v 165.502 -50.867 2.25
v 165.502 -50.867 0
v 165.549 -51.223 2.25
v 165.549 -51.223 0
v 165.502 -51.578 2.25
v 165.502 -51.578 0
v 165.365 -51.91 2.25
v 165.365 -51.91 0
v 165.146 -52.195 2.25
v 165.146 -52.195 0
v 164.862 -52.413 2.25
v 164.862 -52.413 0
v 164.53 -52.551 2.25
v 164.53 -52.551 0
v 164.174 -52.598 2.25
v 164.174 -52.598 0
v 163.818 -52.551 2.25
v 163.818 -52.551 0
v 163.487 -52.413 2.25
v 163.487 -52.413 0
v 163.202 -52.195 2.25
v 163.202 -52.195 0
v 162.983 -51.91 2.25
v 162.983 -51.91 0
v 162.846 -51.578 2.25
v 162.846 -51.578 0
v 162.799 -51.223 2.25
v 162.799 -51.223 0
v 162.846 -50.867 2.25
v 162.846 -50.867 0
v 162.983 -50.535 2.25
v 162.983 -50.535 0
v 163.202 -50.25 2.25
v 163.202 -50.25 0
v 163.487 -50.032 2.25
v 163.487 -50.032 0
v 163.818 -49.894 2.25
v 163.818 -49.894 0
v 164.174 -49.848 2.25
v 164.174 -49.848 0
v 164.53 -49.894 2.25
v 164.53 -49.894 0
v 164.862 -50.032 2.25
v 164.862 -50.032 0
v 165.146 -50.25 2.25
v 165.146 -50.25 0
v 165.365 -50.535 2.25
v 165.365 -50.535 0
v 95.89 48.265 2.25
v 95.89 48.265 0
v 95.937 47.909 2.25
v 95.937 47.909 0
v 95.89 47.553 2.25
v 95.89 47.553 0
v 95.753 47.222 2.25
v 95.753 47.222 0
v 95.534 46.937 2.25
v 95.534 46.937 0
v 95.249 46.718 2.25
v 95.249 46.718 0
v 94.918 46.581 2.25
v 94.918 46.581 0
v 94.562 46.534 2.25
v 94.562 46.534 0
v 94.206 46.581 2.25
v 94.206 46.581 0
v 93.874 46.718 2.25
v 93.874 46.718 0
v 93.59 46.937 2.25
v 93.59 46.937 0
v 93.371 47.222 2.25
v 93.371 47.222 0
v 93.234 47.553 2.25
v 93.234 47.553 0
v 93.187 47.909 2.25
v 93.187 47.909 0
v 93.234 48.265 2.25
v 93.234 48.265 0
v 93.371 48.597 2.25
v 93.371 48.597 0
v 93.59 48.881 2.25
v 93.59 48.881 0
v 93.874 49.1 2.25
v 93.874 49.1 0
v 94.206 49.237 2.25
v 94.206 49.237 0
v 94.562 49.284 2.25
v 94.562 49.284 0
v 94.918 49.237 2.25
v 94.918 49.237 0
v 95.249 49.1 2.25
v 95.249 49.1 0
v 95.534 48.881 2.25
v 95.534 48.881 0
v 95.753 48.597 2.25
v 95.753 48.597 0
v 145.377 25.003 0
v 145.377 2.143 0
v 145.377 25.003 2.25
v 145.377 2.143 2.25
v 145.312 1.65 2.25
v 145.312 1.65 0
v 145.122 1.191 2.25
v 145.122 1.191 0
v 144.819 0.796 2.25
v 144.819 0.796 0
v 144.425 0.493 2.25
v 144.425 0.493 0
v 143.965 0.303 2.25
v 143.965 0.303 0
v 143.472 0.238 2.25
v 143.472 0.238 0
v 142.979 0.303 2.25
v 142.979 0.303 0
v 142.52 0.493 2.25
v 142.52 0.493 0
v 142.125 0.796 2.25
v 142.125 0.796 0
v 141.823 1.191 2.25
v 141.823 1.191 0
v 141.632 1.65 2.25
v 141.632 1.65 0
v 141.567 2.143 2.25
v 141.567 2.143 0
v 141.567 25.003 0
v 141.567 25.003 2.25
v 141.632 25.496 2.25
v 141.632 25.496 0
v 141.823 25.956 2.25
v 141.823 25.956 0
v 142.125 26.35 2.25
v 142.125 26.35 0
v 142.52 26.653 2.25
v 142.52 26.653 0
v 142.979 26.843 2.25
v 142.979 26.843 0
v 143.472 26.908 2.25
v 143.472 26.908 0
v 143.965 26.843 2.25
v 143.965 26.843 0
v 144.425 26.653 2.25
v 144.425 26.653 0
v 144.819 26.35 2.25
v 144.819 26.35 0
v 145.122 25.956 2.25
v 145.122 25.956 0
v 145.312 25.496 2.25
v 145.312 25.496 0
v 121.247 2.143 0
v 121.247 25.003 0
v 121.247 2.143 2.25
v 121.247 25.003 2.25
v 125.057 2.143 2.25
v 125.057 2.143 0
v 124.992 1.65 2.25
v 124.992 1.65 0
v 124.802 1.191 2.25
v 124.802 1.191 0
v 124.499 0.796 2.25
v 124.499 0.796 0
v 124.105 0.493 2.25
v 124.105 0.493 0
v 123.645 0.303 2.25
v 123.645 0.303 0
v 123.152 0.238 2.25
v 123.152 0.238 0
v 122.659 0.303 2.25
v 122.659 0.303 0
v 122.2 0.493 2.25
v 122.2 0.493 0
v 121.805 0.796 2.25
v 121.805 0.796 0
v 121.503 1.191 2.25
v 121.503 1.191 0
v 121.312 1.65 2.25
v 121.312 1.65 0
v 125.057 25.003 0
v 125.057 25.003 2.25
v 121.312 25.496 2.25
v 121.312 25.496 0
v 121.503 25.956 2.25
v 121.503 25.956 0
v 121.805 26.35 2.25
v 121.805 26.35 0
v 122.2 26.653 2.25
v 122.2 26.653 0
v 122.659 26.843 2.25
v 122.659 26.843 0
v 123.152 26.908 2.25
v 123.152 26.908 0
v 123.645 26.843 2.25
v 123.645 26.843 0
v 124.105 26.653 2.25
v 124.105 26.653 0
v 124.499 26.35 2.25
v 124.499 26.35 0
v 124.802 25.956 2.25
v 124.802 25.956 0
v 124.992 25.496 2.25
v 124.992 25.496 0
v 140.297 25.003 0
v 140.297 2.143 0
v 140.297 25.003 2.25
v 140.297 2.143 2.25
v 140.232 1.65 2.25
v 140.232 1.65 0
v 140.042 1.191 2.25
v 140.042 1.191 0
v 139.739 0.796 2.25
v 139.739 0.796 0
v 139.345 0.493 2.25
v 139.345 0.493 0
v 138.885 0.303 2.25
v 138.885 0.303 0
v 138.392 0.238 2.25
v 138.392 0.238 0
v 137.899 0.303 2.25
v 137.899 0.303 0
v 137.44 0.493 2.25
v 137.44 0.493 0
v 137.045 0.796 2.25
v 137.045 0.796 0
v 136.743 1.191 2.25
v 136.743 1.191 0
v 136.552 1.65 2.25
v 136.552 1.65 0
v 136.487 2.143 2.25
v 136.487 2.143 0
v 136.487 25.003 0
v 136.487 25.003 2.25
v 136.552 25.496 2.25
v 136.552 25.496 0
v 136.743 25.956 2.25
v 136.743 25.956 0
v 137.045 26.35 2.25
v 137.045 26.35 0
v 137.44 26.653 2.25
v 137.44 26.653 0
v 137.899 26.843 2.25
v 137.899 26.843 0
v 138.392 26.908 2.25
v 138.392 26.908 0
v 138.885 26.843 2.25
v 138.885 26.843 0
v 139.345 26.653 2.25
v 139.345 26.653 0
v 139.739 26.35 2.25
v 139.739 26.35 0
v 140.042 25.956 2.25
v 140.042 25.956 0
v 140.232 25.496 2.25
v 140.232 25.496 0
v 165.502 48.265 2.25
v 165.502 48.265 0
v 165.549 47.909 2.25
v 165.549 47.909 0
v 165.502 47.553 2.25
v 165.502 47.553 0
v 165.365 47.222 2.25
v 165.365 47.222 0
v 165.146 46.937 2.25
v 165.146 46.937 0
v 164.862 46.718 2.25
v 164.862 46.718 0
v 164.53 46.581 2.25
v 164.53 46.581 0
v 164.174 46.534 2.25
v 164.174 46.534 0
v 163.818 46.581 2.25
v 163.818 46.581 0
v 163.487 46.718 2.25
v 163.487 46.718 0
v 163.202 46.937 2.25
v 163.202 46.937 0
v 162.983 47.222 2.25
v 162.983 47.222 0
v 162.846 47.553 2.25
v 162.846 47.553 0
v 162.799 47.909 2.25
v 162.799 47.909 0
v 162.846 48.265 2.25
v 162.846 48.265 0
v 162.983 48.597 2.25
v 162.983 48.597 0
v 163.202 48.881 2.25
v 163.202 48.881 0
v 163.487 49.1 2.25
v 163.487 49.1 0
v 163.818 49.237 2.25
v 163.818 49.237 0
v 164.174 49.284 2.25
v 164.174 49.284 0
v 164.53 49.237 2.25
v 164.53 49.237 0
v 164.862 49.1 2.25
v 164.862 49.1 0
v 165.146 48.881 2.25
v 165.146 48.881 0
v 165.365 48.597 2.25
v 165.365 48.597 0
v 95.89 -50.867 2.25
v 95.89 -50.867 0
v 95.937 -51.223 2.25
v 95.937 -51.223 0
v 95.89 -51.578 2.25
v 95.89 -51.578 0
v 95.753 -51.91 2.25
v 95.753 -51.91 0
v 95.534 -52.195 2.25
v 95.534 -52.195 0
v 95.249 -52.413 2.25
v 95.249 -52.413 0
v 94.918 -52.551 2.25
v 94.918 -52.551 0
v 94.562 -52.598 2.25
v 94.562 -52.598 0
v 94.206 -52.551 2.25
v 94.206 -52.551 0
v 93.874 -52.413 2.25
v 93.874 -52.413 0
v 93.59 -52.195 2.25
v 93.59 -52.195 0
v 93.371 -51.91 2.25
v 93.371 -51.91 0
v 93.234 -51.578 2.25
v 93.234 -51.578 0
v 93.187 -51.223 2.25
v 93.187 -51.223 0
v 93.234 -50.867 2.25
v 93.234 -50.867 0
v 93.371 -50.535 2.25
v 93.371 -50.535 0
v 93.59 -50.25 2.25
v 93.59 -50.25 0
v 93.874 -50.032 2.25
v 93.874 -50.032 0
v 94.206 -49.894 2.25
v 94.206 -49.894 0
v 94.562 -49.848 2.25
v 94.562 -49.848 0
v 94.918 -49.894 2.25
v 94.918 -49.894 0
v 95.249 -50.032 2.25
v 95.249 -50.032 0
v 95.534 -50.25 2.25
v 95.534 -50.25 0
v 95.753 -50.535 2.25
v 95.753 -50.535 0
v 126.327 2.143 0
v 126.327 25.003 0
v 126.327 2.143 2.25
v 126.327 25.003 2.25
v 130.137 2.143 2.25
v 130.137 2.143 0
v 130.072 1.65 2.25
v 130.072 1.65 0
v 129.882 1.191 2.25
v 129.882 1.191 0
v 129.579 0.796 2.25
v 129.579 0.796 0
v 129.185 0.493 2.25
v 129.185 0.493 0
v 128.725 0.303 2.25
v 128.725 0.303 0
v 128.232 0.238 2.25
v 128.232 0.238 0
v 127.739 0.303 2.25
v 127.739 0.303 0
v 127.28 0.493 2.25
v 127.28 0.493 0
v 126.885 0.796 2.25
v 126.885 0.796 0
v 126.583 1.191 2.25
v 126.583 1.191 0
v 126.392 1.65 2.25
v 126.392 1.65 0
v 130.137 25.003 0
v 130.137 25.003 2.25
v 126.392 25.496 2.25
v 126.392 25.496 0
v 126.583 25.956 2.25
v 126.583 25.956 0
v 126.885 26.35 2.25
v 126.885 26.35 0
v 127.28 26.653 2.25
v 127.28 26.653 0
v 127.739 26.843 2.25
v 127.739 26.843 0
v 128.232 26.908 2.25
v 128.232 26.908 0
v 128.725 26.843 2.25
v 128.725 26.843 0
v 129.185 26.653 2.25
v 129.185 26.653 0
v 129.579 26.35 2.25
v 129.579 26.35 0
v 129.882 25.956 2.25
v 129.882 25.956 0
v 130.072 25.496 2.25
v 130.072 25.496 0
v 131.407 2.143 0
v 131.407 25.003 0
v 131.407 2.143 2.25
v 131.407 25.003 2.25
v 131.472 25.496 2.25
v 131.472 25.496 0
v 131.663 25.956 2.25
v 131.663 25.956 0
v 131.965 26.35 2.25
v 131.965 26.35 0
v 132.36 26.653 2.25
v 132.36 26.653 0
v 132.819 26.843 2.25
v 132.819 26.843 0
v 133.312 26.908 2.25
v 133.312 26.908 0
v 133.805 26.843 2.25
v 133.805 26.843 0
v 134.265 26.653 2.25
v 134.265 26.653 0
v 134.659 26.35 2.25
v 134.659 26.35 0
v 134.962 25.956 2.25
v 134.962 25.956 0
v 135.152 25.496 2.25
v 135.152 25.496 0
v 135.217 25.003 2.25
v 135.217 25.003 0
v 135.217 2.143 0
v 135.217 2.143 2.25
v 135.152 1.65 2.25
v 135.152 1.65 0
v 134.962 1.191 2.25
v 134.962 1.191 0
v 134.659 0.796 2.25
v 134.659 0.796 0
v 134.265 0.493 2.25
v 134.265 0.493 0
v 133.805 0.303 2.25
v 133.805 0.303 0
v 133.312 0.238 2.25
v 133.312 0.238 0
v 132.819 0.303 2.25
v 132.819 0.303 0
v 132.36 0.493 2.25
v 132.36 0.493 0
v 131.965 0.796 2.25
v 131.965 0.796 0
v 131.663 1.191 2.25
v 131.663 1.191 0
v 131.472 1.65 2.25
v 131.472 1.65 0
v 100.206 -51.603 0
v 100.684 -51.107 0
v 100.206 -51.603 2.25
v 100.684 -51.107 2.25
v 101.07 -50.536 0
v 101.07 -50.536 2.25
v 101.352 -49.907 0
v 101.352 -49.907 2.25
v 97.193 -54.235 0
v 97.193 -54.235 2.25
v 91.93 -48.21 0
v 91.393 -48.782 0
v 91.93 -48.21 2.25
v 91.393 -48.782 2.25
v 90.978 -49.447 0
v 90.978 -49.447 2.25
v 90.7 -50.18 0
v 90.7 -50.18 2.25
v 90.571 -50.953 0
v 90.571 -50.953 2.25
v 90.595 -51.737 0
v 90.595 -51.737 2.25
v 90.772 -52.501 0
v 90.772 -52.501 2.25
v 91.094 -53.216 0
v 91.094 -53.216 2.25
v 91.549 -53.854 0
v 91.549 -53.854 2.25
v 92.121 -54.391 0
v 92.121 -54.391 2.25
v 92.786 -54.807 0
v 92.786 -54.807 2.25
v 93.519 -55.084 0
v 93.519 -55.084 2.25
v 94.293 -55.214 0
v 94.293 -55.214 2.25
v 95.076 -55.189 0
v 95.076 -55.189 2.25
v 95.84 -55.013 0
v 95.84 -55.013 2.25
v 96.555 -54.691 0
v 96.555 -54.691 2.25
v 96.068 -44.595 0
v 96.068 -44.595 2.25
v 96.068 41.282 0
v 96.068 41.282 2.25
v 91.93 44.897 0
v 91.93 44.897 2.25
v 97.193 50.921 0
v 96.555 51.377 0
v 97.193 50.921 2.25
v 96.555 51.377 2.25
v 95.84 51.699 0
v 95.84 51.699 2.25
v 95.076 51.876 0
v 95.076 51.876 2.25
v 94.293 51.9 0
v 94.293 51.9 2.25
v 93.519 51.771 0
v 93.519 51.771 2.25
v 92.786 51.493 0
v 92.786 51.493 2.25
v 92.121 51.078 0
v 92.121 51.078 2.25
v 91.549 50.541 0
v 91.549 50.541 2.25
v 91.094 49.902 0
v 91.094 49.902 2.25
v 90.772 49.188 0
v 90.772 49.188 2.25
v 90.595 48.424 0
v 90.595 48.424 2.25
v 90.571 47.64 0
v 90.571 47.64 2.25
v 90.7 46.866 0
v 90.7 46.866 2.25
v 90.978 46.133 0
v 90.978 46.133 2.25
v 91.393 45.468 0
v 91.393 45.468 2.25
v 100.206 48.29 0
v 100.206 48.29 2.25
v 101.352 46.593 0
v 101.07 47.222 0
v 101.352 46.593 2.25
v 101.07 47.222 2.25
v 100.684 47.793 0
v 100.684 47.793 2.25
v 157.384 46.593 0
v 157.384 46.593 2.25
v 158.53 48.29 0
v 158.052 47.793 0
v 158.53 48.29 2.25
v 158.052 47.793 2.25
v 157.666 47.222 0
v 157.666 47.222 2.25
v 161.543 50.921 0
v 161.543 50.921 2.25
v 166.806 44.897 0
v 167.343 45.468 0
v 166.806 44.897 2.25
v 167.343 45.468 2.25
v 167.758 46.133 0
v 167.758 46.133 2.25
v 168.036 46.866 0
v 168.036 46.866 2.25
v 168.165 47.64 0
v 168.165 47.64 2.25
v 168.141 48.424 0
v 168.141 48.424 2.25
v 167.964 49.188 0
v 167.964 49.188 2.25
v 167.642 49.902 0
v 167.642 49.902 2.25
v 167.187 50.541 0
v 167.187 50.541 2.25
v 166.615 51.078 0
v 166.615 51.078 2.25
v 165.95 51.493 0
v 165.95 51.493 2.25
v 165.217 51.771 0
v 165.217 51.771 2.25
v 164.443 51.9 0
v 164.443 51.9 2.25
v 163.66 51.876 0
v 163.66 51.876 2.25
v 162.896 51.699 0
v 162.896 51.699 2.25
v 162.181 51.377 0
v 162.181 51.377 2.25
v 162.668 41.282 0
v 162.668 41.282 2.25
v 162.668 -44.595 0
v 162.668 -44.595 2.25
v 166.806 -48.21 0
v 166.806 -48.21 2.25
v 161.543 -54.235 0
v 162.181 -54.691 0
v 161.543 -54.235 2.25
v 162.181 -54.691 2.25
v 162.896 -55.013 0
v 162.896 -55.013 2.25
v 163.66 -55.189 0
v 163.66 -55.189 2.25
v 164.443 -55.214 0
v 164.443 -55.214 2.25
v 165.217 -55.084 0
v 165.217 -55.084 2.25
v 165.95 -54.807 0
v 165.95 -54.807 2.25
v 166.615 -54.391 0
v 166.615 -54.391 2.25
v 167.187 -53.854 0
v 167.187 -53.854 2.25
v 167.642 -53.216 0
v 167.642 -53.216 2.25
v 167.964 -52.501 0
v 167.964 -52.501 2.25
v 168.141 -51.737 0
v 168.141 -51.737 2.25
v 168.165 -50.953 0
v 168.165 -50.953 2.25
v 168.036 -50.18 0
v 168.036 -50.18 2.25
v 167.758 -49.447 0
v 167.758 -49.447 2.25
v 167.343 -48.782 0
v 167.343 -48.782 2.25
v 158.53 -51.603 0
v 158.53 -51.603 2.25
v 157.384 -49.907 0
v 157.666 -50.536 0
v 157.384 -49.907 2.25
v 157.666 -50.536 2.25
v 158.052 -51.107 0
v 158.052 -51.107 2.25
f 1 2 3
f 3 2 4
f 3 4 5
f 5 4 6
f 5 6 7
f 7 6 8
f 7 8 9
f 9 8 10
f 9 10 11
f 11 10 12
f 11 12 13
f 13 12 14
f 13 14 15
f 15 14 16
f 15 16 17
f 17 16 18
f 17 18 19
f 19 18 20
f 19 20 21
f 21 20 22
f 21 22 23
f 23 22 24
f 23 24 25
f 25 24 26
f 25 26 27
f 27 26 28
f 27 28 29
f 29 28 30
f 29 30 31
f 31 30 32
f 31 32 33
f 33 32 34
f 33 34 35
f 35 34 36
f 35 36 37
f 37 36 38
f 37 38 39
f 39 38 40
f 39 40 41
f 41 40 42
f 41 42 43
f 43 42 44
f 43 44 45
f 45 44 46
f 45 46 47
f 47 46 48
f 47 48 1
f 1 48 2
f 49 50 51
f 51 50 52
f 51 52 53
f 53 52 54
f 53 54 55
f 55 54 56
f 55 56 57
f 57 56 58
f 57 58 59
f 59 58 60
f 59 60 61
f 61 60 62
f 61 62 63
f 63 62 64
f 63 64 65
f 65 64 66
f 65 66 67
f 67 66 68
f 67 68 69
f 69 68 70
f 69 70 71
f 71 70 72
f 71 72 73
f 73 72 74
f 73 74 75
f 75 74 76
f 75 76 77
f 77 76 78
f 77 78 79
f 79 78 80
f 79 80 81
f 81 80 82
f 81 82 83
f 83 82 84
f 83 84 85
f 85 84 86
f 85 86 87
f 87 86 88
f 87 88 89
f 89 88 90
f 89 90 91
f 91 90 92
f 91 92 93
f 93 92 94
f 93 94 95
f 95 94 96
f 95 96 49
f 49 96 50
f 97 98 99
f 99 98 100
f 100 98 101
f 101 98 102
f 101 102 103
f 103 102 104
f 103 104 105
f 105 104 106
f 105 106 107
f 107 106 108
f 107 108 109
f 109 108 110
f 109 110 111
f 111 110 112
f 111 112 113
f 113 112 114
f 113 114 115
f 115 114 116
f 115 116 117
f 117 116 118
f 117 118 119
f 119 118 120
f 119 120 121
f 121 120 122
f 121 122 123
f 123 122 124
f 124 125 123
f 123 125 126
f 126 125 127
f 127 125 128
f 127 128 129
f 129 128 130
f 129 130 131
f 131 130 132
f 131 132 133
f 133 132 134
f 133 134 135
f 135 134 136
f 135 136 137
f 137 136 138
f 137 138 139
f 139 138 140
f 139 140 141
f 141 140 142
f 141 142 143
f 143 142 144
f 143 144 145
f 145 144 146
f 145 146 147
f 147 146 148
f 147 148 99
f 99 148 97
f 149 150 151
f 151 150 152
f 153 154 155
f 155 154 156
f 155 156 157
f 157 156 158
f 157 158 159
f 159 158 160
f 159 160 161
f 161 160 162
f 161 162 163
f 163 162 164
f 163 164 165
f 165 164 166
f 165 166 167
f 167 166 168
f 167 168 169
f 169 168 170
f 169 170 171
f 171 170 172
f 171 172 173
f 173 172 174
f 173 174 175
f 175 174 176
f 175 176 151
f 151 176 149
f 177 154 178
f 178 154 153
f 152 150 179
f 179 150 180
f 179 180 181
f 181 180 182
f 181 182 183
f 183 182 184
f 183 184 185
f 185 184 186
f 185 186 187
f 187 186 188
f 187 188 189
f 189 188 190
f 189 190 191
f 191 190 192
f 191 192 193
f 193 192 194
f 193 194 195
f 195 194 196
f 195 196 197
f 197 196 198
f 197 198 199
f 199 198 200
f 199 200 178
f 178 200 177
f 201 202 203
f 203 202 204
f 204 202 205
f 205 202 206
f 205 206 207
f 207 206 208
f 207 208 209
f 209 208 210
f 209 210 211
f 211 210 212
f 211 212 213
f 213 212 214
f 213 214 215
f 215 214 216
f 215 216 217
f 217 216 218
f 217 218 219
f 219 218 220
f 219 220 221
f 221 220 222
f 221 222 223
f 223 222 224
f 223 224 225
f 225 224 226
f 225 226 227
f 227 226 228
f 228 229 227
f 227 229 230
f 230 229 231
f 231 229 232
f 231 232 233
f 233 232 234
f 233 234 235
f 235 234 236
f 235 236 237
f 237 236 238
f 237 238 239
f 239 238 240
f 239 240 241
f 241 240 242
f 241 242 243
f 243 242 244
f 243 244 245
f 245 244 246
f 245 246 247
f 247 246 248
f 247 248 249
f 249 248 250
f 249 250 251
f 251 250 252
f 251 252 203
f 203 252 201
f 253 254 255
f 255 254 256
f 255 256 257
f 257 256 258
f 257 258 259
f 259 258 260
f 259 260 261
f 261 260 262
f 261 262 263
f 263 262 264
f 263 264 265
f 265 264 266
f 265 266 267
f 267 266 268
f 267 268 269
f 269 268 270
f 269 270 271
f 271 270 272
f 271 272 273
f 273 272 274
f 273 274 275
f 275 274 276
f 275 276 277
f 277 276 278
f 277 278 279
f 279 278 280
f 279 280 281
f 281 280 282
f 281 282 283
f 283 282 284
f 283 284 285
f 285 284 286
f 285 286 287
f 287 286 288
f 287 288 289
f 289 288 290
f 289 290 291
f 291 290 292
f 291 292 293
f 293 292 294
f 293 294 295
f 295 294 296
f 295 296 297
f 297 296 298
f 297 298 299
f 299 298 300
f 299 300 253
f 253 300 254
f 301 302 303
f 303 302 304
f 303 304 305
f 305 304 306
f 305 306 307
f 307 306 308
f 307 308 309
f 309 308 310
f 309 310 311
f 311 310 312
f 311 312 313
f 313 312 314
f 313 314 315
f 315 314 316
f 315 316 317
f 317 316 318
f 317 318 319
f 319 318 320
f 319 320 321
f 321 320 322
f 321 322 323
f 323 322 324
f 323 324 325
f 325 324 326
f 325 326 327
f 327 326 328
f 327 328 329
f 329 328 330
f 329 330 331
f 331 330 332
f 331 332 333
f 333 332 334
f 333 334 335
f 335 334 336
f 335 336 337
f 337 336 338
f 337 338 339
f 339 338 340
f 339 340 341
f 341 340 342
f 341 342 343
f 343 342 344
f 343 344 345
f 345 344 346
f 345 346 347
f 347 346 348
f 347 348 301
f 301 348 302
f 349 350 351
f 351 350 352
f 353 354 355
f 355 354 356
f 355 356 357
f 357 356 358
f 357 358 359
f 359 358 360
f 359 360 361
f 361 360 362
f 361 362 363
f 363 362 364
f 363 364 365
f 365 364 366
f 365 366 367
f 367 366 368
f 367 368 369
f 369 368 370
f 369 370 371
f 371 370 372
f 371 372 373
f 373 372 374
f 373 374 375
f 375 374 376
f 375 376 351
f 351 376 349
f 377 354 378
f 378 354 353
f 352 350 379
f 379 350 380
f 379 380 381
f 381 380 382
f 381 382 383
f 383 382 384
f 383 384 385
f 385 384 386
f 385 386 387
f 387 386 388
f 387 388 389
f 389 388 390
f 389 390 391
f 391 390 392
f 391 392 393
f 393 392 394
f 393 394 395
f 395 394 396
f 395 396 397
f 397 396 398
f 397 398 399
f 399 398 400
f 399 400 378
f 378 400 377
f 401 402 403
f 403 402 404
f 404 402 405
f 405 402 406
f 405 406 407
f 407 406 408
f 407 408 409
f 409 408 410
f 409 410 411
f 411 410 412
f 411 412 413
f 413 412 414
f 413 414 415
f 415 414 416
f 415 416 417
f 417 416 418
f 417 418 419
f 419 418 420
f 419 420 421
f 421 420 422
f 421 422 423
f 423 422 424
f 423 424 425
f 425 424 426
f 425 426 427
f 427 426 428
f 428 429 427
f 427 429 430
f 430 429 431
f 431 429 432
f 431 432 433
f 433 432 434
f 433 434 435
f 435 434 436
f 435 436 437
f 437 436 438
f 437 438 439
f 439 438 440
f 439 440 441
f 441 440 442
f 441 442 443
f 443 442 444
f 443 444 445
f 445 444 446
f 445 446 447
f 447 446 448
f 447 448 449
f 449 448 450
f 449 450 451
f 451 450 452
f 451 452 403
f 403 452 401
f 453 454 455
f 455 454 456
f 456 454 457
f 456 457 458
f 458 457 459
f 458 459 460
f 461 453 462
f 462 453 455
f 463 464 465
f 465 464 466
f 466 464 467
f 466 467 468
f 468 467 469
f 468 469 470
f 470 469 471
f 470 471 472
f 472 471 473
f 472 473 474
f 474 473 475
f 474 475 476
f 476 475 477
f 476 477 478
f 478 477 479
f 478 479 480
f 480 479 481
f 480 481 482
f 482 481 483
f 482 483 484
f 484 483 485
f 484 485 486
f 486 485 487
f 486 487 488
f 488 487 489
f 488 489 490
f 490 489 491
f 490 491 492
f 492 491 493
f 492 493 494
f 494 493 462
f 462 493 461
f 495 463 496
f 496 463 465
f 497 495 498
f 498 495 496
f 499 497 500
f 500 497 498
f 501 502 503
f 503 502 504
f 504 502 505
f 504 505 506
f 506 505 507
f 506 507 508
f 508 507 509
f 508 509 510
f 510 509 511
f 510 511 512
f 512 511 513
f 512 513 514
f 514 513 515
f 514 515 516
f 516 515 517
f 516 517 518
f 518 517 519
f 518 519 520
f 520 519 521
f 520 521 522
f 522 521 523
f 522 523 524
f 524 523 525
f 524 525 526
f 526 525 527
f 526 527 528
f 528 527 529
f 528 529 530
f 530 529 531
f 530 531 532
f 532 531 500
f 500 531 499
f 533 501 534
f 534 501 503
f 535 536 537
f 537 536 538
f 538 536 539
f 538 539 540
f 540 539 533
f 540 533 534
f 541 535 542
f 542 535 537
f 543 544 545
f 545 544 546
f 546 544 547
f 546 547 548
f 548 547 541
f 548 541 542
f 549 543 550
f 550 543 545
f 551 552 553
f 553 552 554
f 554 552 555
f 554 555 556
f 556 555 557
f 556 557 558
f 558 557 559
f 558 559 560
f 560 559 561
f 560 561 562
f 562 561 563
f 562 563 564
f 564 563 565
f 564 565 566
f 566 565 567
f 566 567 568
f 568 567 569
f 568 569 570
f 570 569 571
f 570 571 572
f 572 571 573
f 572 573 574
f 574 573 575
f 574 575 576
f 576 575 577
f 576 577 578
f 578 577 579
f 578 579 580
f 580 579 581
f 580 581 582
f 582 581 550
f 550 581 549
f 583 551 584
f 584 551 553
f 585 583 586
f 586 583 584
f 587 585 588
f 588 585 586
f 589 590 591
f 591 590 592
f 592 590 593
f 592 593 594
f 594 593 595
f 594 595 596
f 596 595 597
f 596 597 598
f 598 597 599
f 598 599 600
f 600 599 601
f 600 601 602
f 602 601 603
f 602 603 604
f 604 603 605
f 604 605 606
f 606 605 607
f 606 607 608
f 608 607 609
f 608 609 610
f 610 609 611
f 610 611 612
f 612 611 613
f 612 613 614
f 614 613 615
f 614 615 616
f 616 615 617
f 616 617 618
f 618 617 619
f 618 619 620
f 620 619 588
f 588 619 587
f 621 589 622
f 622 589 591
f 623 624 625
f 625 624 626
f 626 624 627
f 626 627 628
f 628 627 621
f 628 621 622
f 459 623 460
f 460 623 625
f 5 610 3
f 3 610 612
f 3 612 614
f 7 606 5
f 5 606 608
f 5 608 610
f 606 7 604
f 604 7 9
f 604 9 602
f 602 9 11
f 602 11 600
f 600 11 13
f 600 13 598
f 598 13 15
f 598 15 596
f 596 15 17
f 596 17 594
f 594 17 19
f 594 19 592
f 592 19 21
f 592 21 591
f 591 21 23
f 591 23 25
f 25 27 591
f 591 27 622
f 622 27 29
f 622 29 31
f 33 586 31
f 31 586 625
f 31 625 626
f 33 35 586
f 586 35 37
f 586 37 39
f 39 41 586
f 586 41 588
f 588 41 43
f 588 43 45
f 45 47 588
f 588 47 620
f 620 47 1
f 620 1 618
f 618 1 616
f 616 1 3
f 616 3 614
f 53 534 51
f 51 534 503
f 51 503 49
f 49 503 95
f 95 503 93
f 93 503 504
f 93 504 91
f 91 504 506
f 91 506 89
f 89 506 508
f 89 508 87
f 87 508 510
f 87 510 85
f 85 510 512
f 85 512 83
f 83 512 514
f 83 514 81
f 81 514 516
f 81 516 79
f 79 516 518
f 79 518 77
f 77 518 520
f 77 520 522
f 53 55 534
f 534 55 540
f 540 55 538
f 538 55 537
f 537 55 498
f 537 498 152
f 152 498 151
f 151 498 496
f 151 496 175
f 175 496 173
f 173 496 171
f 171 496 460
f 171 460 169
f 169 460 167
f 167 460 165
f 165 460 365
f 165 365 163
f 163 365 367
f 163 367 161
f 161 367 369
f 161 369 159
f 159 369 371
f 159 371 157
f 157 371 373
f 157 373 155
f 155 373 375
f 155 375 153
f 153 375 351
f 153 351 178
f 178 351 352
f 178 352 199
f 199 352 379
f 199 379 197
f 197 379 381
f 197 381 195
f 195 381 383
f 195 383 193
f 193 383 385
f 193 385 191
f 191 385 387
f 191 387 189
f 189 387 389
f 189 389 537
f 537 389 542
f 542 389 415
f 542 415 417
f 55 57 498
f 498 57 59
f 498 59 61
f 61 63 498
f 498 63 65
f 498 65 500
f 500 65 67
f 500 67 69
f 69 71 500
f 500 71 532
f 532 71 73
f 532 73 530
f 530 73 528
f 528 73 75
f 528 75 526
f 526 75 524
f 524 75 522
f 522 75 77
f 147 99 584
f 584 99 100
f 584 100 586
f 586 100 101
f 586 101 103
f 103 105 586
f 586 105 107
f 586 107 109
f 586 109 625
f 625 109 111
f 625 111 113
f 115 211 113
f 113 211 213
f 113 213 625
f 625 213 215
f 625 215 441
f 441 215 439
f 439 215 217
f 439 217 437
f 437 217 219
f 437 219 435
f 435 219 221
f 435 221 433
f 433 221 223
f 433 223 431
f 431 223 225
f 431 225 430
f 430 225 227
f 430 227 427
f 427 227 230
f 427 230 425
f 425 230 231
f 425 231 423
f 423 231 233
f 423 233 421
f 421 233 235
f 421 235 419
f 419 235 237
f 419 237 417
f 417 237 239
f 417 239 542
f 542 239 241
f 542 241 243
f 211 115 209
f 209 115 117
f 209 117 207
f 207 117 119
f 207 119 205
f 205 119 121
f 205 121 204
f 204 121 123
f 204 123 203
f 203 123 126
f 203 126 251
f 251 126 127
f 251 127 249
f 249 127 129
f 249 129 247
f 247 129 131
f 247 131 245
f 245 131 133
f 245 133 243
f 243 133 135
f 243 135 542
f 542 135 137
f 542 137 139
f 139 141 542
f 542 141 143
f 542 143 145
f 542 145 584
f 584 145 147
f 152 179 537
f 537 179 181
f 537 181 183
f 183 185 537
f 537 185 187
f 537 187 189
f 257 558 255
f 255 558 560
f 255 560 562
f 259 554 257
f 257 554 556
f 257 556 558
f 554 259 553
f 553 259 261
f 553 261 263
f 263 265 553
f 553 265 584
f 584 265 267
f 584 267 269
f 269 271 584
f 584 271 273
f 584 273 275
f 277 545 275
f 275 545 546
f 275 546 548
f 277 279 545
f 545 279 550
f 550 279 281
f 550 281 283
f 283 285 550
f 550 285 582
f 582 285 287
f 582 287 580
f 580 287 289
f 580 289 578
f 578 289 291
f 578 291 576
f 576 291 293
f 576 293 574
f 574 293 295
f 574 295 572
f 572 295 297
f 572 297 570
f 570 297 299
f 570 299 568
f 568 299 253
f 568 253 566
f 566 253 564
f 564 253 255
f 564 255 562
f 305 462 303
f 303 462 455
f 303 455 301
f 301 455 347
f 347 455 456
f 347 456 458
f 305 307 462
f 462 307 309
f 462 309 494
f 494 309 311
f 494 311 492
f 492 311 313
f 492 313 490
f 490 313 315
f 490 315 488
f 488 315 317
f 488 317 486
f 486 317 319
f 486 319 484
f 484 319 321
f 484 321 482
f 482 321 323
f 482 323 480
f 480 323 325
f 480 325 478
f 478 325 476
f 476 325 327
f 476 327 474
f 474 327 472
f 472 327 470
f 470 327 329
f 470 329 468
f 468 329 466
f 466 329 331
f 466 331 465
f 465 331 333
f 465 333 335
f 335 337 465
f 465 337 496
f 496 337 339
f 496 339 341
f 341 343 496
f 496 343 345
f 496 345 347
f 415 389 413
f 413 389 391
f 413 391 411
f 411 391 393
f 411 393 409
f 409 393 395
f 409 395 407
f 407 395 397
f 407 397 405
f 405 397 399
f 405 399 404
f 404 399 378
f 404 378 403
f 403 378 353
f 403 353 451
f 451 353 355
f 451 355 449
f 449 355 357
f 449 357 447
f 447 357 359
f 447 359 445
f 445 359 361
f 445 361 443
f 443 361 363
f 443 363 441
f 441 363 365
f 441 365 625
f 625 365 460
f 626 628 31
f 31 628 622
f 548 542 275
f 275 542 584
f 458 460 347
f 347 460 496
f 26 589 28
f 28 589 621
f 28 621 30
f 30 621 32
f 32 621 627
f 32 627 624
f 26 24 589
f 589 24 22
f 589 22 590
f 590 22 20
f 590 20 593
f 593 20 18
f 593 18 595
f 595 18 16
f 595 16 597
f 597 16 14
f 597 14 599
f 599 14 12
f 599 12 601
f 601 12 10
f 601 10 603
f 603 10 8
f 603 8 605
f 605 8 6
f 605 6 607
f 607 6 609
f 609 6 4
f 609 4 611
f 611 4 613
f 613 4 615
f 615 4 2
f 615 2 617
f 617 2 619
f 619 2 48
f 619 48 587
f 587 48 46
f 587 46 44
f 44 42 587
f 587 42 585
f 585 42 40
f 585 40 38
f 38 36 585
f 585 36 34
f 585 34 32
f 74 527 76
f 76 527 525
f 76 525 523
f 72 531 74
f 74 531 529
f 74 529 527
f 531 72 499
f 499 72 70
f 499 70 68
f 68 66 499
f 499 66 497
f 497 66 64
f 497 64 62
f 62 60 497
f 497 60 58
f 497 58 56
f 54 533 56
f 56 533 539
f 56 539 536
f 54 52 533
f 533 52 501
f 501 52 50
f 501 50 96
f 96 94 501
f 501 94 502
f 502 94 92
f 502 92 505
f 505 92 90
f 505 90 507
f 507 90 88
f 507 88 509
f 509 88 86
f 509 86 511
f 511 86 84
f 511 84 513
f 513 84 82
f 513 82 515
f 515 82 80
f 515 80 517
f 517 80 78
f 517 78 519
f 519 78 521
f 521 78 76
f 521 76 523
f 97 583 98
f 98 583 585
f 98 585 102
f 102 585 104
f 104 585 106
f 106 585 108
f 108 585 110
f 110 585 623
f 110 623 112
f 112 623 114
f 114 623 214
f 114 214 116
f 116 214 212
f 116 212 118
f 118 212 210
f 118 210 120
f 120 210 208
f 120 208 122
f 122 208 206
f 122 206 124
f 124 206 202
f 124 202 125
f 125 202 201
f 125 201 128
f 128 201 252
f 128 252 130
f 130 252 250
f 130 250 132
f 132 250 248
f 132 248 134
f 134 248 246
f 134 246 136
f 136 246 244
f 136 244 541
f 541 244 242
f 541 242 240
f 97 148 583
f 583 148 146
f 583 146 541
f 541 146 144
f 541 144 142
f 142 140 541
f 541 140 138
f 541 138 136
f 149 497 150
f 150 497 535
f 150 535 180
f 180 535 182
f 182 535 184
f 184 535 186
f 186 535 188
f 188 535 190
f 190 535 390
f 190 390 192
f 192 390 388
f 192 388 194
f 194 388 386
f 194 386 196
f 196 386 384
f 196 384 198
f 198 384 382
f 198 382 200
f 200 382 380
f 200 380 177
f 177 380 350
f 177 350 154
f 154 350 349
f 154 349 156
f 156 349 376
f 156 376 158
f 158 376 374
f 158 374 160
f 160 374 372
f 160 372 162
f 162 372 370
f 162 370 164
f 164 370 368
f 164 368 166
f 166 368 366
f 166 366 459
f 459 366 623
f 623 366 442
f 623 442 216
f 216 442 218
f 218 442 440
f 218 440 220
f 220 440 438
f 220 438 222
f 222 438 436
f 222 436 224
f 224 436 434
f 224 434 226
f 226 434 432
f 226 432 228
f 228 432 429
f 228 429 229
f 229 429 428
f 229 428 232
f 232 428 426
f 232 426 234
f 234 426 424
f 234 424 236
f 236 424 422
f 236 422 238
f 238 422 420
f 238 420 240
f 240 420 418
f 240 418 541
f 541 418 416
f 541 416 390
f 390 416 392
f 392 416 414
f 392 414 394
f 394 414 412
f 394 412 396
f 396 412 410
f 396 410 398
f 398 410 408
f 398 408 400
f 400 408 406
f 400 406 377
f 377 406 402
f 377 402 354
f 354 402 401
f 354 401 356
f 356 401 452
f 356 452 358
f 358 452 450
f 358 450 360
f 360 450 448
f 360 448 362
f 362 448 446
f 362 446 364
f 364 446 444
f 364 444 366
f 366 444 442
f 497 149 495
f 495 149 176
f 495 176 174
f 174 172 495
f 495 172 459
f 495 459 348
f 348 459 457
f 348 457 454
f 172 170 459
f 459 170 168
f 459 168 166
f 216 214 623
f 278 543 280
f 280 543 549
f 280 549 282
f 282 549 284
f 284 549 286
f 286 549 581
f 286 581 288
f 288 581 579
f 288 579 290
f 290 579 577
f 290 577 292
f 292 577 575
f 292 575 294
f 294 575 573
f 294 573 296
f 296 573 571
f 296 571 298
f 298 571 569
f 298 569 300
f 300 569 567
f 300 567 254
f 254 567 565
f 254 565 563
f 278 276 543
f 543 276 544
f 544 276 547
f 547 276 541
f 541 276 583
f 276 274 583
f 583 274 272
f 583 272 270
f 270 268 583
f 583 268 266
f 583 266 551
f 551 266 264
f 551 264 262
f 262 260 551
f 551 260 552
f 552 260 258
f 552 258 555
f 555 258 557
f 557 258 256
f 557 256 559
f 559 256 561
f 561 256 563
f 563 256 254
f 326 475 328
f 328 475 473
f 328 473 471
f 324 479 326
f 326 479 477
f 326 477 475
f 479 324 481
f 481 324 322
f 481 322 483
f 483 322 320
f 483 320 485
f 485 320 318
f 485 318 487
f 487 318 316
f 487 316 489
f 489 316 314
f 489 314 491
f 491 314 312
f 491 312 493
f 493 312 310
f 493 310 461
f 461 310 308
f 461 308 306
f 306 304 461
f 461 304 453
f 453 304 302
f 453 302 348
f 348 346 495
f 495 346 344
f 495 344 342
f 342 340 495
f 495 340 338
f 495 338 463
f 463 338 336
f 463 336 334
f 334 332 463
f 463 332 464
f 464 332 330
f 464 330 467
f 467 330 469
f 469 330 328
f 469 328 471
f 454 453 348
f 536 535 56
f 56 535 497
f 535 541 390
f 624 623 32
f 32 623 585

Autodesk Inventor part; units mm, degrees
ref_plane "YZ Plane" through (0, 0, 0) normal (1, 0, 0) x (0, 1, 0)
ref_plane "XZ Plane" through (0, 0, 0) normal (0, 1, 0) x (-1, 0, 0)
ref_plane "XY Plane" through (0, 0, 0) normal (0, 0, 1) x (1, 0, 0)
ref_plane "Work Plane1" through (0, 0, 0) normal (0, 0, 1) x (1, 0, 0)
sketch "Sketch1" plane through (0, 0, 0) normal (0, 0, 1) x (1, 0, 0)
  line L0 (162.668, -44.5954) -> (162.668, 41.2818) projected
  line L1 (166.8059, 44.8966) -> (162.668, 41.2818) projected
  arc A0 (166.8059, 44.8966) -> (161.5426, 50.9214) centre (164.1742, 47.909) ccw projected
  circle A1 centre (164.1742, 47.909) radius 1.375 projected
  line L2 (158.5302, 48.2898) -> (161.5426, 50.9214) projected
  arc A2 (158.5302, 48.2898) -> (157.3844, 46.5932) centre (161.1618, 45.2774) ccw projected
  line L3 (157.3844, 46.5932) -> (101.3516, 46.5932) projected
  arc A3 (101.3516, 46.5932) -> (100.2059, 48.2898) centre (97.5742, 45.2774) ccw projected
  line L4 (97.1935, 50.9214) -> (100.2059, 48.2898) projected
  arc A4 (97.1935, 50.9214) -> (91.9302, 44.8966) centre (94.5618, 47.909) ccw projected
  circle A5 centre (94.5618, 47.909) radius 1.375 projected
  line L5 (96.068, 41.2818) -> (91.9302, 44.8966) projected
  line L6 (96.068, 41.2818) -> (96.068, -44.5954) projected
  line L7 (91.9302, -48.2102) -> (96.068, -44.5954) projected
  arc A6 (91.9302, -48.2102) -> (97.1935, -54.235) centre (94.5618, -51.2226) ccw projected
  line L8 (100.2059, -51.6034) -> (97.1935, -54.235) projected
  arc A7 (100.2059, -51.6034) -> (101.3516, -49.9068) centre (97.5742, -48.591) ccw projected
  circle A8 centre (94.5618, -51.2226) radius 1.375 projected
  line L9 (101.3516, -49.9068) -> (157.3844, -49.9068) projected
  line L10 (161.5426, -54.235) -> (158.5302, -51.6034) projected
  arc A9 (157.3844, -49.9068) -> (158.5302, -51.6034) centre (161.1618, -48.591) ccw projected
  arc A10 (161.5426, -54.235) -> (166.8059, -48.2102) centre (164.1742, -51.2226) ccw projected
  line L11 (162.668, -44.5954) -> (166.8059, -48.2102) projected
  circle A11 centre (164.1742, -51.2226) radius 1.375 projected
  line L12 (102.868, 42.7932) -> (155.868, 42.7932) projected
  arc A12 (158.868, 39.7932) -> (155.868, 42.7932) centre (155.868, 39.7932) ccw projected
  line L13 (158.868, 39.7932) -> (158.868, -43.1068) projected
  arc A13 (155.868, -46.1068) -> (158.868, -43.1068) centre (155.868, -43.1068) ccw projected
  line L14 (155.868, -46.1068) -> (102.868, -46.1068) projected
  arc A14 (99.868, -43.1068) -> (102.868, -46.1068) centre (102.868, -43.1068) ccw projected
  line L15 (99.868, -43.1068) -> (99.868, 39.7932) projected
  arc A15 (102.868, 42.7932) -> (99.868, 39.7932) centre (102.868, 39.7932) ccw projected
  point P0 (0, 0)
  point P1 (-32.2078, 42.9557)
  point P2 (-31.0209, 50.8588)
  point P3 (-31.2556, 42.9706)
  point P4 (90.7091, 46.8336)
  point P5 (90.8754, -49.6701)
  point P6 (94.8543, -45.6557)
  point P7 (38.6589, -48.4904)
  point P8 (35.6268, 48.0781)
extrude "Extrusion1" add sketch "Sketch1" along normal blind 2.25 contours L11 A10 L10 A9 L9 A7 L8 A6 L7 L6 L5 A4 L4 A3 L3 A2 L2 A0 L1 L0 | A1 | A5 | A8 | A11 | L12 A12 L13 A13 L14 A14 L15 A15
sketch "Sketch2" plane through (0, 0, 2.25) normal (0, 0, 1) x (1, 0, 0)
  line L0 (140.3574, 20.4135) -> (126.2672, 20.4135) construction
  line L1 (126.2672, 20.4135) -> (126.2672, 6.3233) construction
  line L2 (126.2672, 6.3233) -> (140.3574, 6.3233) construction
  line L3 (140.3574, 6.3233) -> (140.3574, 20.4135) construction
  line L4 (133.3123, 25.0032) -> (133.3123, 2.1432) construction
  line L5 (131.4073, 25.0032) -> (131.4073, 2.1432)
  line L6 (135.2173, 2.1432) -> (135.2173, 25.0032)
  arc A0 (135.2173, 25.0032) -> (131.4073, 25.0032) centre (133.3123, 25.0032) ccw
  arc A1 (131.4073, 2.1432) -> (135.2173, 2.1432) centre (133.3123, 2.1432) ccw
  line L7 (162.668, -44.5954) -> (162.668, 41.2818) projected
  line L8 (157.3844, 46.5932) -> (101.3516, 46.5932) projected
  line L9 (140.2973, 2.1432) -> (140.2973, 25.0032)
  arc A2 (140.2973, 25.0032) -> (136.4873, 25.0032) centre (138.3923, 25.0032) ccw
  line L10 (136.4873, 25.0032) -> (136.4873, 2.1432)
  arc A3 (136.4873, 2.1432) -> (140.2973, 2.1432) centre (138.3923, 2.1432) ccw
  line L11 (145.3773, 2.1432) -> (145.3773, 25.0032)
  arc A4 (145.3773, 25.0032) -> (141.5673, 25.0032) centre (143.4723, 25.0032) ccw
  line L12 (141.5673, 25.0032) -> (141.5673, 2.1432)
  arc A5 (141.5673, 2.1432) -> (145.3773, 2.1432) centre (143.4723, 2.1432) ccw
  arc A6 (130.1373, 25.0032) -> (126.3273, 25.0032) centre (128.2323, 25.0032) ccw
  line L13 (130.1373, 2.1432) -> (130.1373, 25.0032)
  line L14 (126.3273, 25.0032) -> (126.3273, 2.1432)
  arc A7 (126.3273, 2.1432) -> (130.1373, 2.1432) centre (128.2323, 2.1432) ccw
  arc A8 (125.0573, 25.0032) -> (121.2473, 25.0032) centre (123.1523, 25.0032) ccw
  line L15 (125.0573, 2.1432) -> (125.0573, 25.0032)
  line L16 (121.2473, 25.0032) -> (121.2473, 2.1432)
  arc A9 (121.2473, 2.1432) -> (125.0573, 2.1432) centre (123.1523, 2.1432) ccw
  circle A10 centre (94.5618, -51.2226) radius 1.375 projected
  circle A11 centre (164.1742, -51.2226) radius 1.375 projected
  circle A12 centre (164.1742, 47.909) radius 1.375 projected
  circle A13 centre (94.5618, 47.909) radius 1.375 projected
  point P0 (0, 0)
  point P1 (133.3123, 13.5732)
  dimension "d2" = 11.43
  dimension "d3" = 3.81
  dimension "d4" = 27.4507
  dimension "d5" = 21.59
  dimension "d6" = 14.0902
  dimension "d7" = 22.3106
  dimension "d8" = 36.4008
  dimension "d9" = 26.1797
  dimension "d12" = 5.08
  dimension "d19" = 5.08
extrude "Extrusion2" cut sketch "Sketch2" against normal up to surface (2.25 mm away)
properties part number "_3DPrint"
